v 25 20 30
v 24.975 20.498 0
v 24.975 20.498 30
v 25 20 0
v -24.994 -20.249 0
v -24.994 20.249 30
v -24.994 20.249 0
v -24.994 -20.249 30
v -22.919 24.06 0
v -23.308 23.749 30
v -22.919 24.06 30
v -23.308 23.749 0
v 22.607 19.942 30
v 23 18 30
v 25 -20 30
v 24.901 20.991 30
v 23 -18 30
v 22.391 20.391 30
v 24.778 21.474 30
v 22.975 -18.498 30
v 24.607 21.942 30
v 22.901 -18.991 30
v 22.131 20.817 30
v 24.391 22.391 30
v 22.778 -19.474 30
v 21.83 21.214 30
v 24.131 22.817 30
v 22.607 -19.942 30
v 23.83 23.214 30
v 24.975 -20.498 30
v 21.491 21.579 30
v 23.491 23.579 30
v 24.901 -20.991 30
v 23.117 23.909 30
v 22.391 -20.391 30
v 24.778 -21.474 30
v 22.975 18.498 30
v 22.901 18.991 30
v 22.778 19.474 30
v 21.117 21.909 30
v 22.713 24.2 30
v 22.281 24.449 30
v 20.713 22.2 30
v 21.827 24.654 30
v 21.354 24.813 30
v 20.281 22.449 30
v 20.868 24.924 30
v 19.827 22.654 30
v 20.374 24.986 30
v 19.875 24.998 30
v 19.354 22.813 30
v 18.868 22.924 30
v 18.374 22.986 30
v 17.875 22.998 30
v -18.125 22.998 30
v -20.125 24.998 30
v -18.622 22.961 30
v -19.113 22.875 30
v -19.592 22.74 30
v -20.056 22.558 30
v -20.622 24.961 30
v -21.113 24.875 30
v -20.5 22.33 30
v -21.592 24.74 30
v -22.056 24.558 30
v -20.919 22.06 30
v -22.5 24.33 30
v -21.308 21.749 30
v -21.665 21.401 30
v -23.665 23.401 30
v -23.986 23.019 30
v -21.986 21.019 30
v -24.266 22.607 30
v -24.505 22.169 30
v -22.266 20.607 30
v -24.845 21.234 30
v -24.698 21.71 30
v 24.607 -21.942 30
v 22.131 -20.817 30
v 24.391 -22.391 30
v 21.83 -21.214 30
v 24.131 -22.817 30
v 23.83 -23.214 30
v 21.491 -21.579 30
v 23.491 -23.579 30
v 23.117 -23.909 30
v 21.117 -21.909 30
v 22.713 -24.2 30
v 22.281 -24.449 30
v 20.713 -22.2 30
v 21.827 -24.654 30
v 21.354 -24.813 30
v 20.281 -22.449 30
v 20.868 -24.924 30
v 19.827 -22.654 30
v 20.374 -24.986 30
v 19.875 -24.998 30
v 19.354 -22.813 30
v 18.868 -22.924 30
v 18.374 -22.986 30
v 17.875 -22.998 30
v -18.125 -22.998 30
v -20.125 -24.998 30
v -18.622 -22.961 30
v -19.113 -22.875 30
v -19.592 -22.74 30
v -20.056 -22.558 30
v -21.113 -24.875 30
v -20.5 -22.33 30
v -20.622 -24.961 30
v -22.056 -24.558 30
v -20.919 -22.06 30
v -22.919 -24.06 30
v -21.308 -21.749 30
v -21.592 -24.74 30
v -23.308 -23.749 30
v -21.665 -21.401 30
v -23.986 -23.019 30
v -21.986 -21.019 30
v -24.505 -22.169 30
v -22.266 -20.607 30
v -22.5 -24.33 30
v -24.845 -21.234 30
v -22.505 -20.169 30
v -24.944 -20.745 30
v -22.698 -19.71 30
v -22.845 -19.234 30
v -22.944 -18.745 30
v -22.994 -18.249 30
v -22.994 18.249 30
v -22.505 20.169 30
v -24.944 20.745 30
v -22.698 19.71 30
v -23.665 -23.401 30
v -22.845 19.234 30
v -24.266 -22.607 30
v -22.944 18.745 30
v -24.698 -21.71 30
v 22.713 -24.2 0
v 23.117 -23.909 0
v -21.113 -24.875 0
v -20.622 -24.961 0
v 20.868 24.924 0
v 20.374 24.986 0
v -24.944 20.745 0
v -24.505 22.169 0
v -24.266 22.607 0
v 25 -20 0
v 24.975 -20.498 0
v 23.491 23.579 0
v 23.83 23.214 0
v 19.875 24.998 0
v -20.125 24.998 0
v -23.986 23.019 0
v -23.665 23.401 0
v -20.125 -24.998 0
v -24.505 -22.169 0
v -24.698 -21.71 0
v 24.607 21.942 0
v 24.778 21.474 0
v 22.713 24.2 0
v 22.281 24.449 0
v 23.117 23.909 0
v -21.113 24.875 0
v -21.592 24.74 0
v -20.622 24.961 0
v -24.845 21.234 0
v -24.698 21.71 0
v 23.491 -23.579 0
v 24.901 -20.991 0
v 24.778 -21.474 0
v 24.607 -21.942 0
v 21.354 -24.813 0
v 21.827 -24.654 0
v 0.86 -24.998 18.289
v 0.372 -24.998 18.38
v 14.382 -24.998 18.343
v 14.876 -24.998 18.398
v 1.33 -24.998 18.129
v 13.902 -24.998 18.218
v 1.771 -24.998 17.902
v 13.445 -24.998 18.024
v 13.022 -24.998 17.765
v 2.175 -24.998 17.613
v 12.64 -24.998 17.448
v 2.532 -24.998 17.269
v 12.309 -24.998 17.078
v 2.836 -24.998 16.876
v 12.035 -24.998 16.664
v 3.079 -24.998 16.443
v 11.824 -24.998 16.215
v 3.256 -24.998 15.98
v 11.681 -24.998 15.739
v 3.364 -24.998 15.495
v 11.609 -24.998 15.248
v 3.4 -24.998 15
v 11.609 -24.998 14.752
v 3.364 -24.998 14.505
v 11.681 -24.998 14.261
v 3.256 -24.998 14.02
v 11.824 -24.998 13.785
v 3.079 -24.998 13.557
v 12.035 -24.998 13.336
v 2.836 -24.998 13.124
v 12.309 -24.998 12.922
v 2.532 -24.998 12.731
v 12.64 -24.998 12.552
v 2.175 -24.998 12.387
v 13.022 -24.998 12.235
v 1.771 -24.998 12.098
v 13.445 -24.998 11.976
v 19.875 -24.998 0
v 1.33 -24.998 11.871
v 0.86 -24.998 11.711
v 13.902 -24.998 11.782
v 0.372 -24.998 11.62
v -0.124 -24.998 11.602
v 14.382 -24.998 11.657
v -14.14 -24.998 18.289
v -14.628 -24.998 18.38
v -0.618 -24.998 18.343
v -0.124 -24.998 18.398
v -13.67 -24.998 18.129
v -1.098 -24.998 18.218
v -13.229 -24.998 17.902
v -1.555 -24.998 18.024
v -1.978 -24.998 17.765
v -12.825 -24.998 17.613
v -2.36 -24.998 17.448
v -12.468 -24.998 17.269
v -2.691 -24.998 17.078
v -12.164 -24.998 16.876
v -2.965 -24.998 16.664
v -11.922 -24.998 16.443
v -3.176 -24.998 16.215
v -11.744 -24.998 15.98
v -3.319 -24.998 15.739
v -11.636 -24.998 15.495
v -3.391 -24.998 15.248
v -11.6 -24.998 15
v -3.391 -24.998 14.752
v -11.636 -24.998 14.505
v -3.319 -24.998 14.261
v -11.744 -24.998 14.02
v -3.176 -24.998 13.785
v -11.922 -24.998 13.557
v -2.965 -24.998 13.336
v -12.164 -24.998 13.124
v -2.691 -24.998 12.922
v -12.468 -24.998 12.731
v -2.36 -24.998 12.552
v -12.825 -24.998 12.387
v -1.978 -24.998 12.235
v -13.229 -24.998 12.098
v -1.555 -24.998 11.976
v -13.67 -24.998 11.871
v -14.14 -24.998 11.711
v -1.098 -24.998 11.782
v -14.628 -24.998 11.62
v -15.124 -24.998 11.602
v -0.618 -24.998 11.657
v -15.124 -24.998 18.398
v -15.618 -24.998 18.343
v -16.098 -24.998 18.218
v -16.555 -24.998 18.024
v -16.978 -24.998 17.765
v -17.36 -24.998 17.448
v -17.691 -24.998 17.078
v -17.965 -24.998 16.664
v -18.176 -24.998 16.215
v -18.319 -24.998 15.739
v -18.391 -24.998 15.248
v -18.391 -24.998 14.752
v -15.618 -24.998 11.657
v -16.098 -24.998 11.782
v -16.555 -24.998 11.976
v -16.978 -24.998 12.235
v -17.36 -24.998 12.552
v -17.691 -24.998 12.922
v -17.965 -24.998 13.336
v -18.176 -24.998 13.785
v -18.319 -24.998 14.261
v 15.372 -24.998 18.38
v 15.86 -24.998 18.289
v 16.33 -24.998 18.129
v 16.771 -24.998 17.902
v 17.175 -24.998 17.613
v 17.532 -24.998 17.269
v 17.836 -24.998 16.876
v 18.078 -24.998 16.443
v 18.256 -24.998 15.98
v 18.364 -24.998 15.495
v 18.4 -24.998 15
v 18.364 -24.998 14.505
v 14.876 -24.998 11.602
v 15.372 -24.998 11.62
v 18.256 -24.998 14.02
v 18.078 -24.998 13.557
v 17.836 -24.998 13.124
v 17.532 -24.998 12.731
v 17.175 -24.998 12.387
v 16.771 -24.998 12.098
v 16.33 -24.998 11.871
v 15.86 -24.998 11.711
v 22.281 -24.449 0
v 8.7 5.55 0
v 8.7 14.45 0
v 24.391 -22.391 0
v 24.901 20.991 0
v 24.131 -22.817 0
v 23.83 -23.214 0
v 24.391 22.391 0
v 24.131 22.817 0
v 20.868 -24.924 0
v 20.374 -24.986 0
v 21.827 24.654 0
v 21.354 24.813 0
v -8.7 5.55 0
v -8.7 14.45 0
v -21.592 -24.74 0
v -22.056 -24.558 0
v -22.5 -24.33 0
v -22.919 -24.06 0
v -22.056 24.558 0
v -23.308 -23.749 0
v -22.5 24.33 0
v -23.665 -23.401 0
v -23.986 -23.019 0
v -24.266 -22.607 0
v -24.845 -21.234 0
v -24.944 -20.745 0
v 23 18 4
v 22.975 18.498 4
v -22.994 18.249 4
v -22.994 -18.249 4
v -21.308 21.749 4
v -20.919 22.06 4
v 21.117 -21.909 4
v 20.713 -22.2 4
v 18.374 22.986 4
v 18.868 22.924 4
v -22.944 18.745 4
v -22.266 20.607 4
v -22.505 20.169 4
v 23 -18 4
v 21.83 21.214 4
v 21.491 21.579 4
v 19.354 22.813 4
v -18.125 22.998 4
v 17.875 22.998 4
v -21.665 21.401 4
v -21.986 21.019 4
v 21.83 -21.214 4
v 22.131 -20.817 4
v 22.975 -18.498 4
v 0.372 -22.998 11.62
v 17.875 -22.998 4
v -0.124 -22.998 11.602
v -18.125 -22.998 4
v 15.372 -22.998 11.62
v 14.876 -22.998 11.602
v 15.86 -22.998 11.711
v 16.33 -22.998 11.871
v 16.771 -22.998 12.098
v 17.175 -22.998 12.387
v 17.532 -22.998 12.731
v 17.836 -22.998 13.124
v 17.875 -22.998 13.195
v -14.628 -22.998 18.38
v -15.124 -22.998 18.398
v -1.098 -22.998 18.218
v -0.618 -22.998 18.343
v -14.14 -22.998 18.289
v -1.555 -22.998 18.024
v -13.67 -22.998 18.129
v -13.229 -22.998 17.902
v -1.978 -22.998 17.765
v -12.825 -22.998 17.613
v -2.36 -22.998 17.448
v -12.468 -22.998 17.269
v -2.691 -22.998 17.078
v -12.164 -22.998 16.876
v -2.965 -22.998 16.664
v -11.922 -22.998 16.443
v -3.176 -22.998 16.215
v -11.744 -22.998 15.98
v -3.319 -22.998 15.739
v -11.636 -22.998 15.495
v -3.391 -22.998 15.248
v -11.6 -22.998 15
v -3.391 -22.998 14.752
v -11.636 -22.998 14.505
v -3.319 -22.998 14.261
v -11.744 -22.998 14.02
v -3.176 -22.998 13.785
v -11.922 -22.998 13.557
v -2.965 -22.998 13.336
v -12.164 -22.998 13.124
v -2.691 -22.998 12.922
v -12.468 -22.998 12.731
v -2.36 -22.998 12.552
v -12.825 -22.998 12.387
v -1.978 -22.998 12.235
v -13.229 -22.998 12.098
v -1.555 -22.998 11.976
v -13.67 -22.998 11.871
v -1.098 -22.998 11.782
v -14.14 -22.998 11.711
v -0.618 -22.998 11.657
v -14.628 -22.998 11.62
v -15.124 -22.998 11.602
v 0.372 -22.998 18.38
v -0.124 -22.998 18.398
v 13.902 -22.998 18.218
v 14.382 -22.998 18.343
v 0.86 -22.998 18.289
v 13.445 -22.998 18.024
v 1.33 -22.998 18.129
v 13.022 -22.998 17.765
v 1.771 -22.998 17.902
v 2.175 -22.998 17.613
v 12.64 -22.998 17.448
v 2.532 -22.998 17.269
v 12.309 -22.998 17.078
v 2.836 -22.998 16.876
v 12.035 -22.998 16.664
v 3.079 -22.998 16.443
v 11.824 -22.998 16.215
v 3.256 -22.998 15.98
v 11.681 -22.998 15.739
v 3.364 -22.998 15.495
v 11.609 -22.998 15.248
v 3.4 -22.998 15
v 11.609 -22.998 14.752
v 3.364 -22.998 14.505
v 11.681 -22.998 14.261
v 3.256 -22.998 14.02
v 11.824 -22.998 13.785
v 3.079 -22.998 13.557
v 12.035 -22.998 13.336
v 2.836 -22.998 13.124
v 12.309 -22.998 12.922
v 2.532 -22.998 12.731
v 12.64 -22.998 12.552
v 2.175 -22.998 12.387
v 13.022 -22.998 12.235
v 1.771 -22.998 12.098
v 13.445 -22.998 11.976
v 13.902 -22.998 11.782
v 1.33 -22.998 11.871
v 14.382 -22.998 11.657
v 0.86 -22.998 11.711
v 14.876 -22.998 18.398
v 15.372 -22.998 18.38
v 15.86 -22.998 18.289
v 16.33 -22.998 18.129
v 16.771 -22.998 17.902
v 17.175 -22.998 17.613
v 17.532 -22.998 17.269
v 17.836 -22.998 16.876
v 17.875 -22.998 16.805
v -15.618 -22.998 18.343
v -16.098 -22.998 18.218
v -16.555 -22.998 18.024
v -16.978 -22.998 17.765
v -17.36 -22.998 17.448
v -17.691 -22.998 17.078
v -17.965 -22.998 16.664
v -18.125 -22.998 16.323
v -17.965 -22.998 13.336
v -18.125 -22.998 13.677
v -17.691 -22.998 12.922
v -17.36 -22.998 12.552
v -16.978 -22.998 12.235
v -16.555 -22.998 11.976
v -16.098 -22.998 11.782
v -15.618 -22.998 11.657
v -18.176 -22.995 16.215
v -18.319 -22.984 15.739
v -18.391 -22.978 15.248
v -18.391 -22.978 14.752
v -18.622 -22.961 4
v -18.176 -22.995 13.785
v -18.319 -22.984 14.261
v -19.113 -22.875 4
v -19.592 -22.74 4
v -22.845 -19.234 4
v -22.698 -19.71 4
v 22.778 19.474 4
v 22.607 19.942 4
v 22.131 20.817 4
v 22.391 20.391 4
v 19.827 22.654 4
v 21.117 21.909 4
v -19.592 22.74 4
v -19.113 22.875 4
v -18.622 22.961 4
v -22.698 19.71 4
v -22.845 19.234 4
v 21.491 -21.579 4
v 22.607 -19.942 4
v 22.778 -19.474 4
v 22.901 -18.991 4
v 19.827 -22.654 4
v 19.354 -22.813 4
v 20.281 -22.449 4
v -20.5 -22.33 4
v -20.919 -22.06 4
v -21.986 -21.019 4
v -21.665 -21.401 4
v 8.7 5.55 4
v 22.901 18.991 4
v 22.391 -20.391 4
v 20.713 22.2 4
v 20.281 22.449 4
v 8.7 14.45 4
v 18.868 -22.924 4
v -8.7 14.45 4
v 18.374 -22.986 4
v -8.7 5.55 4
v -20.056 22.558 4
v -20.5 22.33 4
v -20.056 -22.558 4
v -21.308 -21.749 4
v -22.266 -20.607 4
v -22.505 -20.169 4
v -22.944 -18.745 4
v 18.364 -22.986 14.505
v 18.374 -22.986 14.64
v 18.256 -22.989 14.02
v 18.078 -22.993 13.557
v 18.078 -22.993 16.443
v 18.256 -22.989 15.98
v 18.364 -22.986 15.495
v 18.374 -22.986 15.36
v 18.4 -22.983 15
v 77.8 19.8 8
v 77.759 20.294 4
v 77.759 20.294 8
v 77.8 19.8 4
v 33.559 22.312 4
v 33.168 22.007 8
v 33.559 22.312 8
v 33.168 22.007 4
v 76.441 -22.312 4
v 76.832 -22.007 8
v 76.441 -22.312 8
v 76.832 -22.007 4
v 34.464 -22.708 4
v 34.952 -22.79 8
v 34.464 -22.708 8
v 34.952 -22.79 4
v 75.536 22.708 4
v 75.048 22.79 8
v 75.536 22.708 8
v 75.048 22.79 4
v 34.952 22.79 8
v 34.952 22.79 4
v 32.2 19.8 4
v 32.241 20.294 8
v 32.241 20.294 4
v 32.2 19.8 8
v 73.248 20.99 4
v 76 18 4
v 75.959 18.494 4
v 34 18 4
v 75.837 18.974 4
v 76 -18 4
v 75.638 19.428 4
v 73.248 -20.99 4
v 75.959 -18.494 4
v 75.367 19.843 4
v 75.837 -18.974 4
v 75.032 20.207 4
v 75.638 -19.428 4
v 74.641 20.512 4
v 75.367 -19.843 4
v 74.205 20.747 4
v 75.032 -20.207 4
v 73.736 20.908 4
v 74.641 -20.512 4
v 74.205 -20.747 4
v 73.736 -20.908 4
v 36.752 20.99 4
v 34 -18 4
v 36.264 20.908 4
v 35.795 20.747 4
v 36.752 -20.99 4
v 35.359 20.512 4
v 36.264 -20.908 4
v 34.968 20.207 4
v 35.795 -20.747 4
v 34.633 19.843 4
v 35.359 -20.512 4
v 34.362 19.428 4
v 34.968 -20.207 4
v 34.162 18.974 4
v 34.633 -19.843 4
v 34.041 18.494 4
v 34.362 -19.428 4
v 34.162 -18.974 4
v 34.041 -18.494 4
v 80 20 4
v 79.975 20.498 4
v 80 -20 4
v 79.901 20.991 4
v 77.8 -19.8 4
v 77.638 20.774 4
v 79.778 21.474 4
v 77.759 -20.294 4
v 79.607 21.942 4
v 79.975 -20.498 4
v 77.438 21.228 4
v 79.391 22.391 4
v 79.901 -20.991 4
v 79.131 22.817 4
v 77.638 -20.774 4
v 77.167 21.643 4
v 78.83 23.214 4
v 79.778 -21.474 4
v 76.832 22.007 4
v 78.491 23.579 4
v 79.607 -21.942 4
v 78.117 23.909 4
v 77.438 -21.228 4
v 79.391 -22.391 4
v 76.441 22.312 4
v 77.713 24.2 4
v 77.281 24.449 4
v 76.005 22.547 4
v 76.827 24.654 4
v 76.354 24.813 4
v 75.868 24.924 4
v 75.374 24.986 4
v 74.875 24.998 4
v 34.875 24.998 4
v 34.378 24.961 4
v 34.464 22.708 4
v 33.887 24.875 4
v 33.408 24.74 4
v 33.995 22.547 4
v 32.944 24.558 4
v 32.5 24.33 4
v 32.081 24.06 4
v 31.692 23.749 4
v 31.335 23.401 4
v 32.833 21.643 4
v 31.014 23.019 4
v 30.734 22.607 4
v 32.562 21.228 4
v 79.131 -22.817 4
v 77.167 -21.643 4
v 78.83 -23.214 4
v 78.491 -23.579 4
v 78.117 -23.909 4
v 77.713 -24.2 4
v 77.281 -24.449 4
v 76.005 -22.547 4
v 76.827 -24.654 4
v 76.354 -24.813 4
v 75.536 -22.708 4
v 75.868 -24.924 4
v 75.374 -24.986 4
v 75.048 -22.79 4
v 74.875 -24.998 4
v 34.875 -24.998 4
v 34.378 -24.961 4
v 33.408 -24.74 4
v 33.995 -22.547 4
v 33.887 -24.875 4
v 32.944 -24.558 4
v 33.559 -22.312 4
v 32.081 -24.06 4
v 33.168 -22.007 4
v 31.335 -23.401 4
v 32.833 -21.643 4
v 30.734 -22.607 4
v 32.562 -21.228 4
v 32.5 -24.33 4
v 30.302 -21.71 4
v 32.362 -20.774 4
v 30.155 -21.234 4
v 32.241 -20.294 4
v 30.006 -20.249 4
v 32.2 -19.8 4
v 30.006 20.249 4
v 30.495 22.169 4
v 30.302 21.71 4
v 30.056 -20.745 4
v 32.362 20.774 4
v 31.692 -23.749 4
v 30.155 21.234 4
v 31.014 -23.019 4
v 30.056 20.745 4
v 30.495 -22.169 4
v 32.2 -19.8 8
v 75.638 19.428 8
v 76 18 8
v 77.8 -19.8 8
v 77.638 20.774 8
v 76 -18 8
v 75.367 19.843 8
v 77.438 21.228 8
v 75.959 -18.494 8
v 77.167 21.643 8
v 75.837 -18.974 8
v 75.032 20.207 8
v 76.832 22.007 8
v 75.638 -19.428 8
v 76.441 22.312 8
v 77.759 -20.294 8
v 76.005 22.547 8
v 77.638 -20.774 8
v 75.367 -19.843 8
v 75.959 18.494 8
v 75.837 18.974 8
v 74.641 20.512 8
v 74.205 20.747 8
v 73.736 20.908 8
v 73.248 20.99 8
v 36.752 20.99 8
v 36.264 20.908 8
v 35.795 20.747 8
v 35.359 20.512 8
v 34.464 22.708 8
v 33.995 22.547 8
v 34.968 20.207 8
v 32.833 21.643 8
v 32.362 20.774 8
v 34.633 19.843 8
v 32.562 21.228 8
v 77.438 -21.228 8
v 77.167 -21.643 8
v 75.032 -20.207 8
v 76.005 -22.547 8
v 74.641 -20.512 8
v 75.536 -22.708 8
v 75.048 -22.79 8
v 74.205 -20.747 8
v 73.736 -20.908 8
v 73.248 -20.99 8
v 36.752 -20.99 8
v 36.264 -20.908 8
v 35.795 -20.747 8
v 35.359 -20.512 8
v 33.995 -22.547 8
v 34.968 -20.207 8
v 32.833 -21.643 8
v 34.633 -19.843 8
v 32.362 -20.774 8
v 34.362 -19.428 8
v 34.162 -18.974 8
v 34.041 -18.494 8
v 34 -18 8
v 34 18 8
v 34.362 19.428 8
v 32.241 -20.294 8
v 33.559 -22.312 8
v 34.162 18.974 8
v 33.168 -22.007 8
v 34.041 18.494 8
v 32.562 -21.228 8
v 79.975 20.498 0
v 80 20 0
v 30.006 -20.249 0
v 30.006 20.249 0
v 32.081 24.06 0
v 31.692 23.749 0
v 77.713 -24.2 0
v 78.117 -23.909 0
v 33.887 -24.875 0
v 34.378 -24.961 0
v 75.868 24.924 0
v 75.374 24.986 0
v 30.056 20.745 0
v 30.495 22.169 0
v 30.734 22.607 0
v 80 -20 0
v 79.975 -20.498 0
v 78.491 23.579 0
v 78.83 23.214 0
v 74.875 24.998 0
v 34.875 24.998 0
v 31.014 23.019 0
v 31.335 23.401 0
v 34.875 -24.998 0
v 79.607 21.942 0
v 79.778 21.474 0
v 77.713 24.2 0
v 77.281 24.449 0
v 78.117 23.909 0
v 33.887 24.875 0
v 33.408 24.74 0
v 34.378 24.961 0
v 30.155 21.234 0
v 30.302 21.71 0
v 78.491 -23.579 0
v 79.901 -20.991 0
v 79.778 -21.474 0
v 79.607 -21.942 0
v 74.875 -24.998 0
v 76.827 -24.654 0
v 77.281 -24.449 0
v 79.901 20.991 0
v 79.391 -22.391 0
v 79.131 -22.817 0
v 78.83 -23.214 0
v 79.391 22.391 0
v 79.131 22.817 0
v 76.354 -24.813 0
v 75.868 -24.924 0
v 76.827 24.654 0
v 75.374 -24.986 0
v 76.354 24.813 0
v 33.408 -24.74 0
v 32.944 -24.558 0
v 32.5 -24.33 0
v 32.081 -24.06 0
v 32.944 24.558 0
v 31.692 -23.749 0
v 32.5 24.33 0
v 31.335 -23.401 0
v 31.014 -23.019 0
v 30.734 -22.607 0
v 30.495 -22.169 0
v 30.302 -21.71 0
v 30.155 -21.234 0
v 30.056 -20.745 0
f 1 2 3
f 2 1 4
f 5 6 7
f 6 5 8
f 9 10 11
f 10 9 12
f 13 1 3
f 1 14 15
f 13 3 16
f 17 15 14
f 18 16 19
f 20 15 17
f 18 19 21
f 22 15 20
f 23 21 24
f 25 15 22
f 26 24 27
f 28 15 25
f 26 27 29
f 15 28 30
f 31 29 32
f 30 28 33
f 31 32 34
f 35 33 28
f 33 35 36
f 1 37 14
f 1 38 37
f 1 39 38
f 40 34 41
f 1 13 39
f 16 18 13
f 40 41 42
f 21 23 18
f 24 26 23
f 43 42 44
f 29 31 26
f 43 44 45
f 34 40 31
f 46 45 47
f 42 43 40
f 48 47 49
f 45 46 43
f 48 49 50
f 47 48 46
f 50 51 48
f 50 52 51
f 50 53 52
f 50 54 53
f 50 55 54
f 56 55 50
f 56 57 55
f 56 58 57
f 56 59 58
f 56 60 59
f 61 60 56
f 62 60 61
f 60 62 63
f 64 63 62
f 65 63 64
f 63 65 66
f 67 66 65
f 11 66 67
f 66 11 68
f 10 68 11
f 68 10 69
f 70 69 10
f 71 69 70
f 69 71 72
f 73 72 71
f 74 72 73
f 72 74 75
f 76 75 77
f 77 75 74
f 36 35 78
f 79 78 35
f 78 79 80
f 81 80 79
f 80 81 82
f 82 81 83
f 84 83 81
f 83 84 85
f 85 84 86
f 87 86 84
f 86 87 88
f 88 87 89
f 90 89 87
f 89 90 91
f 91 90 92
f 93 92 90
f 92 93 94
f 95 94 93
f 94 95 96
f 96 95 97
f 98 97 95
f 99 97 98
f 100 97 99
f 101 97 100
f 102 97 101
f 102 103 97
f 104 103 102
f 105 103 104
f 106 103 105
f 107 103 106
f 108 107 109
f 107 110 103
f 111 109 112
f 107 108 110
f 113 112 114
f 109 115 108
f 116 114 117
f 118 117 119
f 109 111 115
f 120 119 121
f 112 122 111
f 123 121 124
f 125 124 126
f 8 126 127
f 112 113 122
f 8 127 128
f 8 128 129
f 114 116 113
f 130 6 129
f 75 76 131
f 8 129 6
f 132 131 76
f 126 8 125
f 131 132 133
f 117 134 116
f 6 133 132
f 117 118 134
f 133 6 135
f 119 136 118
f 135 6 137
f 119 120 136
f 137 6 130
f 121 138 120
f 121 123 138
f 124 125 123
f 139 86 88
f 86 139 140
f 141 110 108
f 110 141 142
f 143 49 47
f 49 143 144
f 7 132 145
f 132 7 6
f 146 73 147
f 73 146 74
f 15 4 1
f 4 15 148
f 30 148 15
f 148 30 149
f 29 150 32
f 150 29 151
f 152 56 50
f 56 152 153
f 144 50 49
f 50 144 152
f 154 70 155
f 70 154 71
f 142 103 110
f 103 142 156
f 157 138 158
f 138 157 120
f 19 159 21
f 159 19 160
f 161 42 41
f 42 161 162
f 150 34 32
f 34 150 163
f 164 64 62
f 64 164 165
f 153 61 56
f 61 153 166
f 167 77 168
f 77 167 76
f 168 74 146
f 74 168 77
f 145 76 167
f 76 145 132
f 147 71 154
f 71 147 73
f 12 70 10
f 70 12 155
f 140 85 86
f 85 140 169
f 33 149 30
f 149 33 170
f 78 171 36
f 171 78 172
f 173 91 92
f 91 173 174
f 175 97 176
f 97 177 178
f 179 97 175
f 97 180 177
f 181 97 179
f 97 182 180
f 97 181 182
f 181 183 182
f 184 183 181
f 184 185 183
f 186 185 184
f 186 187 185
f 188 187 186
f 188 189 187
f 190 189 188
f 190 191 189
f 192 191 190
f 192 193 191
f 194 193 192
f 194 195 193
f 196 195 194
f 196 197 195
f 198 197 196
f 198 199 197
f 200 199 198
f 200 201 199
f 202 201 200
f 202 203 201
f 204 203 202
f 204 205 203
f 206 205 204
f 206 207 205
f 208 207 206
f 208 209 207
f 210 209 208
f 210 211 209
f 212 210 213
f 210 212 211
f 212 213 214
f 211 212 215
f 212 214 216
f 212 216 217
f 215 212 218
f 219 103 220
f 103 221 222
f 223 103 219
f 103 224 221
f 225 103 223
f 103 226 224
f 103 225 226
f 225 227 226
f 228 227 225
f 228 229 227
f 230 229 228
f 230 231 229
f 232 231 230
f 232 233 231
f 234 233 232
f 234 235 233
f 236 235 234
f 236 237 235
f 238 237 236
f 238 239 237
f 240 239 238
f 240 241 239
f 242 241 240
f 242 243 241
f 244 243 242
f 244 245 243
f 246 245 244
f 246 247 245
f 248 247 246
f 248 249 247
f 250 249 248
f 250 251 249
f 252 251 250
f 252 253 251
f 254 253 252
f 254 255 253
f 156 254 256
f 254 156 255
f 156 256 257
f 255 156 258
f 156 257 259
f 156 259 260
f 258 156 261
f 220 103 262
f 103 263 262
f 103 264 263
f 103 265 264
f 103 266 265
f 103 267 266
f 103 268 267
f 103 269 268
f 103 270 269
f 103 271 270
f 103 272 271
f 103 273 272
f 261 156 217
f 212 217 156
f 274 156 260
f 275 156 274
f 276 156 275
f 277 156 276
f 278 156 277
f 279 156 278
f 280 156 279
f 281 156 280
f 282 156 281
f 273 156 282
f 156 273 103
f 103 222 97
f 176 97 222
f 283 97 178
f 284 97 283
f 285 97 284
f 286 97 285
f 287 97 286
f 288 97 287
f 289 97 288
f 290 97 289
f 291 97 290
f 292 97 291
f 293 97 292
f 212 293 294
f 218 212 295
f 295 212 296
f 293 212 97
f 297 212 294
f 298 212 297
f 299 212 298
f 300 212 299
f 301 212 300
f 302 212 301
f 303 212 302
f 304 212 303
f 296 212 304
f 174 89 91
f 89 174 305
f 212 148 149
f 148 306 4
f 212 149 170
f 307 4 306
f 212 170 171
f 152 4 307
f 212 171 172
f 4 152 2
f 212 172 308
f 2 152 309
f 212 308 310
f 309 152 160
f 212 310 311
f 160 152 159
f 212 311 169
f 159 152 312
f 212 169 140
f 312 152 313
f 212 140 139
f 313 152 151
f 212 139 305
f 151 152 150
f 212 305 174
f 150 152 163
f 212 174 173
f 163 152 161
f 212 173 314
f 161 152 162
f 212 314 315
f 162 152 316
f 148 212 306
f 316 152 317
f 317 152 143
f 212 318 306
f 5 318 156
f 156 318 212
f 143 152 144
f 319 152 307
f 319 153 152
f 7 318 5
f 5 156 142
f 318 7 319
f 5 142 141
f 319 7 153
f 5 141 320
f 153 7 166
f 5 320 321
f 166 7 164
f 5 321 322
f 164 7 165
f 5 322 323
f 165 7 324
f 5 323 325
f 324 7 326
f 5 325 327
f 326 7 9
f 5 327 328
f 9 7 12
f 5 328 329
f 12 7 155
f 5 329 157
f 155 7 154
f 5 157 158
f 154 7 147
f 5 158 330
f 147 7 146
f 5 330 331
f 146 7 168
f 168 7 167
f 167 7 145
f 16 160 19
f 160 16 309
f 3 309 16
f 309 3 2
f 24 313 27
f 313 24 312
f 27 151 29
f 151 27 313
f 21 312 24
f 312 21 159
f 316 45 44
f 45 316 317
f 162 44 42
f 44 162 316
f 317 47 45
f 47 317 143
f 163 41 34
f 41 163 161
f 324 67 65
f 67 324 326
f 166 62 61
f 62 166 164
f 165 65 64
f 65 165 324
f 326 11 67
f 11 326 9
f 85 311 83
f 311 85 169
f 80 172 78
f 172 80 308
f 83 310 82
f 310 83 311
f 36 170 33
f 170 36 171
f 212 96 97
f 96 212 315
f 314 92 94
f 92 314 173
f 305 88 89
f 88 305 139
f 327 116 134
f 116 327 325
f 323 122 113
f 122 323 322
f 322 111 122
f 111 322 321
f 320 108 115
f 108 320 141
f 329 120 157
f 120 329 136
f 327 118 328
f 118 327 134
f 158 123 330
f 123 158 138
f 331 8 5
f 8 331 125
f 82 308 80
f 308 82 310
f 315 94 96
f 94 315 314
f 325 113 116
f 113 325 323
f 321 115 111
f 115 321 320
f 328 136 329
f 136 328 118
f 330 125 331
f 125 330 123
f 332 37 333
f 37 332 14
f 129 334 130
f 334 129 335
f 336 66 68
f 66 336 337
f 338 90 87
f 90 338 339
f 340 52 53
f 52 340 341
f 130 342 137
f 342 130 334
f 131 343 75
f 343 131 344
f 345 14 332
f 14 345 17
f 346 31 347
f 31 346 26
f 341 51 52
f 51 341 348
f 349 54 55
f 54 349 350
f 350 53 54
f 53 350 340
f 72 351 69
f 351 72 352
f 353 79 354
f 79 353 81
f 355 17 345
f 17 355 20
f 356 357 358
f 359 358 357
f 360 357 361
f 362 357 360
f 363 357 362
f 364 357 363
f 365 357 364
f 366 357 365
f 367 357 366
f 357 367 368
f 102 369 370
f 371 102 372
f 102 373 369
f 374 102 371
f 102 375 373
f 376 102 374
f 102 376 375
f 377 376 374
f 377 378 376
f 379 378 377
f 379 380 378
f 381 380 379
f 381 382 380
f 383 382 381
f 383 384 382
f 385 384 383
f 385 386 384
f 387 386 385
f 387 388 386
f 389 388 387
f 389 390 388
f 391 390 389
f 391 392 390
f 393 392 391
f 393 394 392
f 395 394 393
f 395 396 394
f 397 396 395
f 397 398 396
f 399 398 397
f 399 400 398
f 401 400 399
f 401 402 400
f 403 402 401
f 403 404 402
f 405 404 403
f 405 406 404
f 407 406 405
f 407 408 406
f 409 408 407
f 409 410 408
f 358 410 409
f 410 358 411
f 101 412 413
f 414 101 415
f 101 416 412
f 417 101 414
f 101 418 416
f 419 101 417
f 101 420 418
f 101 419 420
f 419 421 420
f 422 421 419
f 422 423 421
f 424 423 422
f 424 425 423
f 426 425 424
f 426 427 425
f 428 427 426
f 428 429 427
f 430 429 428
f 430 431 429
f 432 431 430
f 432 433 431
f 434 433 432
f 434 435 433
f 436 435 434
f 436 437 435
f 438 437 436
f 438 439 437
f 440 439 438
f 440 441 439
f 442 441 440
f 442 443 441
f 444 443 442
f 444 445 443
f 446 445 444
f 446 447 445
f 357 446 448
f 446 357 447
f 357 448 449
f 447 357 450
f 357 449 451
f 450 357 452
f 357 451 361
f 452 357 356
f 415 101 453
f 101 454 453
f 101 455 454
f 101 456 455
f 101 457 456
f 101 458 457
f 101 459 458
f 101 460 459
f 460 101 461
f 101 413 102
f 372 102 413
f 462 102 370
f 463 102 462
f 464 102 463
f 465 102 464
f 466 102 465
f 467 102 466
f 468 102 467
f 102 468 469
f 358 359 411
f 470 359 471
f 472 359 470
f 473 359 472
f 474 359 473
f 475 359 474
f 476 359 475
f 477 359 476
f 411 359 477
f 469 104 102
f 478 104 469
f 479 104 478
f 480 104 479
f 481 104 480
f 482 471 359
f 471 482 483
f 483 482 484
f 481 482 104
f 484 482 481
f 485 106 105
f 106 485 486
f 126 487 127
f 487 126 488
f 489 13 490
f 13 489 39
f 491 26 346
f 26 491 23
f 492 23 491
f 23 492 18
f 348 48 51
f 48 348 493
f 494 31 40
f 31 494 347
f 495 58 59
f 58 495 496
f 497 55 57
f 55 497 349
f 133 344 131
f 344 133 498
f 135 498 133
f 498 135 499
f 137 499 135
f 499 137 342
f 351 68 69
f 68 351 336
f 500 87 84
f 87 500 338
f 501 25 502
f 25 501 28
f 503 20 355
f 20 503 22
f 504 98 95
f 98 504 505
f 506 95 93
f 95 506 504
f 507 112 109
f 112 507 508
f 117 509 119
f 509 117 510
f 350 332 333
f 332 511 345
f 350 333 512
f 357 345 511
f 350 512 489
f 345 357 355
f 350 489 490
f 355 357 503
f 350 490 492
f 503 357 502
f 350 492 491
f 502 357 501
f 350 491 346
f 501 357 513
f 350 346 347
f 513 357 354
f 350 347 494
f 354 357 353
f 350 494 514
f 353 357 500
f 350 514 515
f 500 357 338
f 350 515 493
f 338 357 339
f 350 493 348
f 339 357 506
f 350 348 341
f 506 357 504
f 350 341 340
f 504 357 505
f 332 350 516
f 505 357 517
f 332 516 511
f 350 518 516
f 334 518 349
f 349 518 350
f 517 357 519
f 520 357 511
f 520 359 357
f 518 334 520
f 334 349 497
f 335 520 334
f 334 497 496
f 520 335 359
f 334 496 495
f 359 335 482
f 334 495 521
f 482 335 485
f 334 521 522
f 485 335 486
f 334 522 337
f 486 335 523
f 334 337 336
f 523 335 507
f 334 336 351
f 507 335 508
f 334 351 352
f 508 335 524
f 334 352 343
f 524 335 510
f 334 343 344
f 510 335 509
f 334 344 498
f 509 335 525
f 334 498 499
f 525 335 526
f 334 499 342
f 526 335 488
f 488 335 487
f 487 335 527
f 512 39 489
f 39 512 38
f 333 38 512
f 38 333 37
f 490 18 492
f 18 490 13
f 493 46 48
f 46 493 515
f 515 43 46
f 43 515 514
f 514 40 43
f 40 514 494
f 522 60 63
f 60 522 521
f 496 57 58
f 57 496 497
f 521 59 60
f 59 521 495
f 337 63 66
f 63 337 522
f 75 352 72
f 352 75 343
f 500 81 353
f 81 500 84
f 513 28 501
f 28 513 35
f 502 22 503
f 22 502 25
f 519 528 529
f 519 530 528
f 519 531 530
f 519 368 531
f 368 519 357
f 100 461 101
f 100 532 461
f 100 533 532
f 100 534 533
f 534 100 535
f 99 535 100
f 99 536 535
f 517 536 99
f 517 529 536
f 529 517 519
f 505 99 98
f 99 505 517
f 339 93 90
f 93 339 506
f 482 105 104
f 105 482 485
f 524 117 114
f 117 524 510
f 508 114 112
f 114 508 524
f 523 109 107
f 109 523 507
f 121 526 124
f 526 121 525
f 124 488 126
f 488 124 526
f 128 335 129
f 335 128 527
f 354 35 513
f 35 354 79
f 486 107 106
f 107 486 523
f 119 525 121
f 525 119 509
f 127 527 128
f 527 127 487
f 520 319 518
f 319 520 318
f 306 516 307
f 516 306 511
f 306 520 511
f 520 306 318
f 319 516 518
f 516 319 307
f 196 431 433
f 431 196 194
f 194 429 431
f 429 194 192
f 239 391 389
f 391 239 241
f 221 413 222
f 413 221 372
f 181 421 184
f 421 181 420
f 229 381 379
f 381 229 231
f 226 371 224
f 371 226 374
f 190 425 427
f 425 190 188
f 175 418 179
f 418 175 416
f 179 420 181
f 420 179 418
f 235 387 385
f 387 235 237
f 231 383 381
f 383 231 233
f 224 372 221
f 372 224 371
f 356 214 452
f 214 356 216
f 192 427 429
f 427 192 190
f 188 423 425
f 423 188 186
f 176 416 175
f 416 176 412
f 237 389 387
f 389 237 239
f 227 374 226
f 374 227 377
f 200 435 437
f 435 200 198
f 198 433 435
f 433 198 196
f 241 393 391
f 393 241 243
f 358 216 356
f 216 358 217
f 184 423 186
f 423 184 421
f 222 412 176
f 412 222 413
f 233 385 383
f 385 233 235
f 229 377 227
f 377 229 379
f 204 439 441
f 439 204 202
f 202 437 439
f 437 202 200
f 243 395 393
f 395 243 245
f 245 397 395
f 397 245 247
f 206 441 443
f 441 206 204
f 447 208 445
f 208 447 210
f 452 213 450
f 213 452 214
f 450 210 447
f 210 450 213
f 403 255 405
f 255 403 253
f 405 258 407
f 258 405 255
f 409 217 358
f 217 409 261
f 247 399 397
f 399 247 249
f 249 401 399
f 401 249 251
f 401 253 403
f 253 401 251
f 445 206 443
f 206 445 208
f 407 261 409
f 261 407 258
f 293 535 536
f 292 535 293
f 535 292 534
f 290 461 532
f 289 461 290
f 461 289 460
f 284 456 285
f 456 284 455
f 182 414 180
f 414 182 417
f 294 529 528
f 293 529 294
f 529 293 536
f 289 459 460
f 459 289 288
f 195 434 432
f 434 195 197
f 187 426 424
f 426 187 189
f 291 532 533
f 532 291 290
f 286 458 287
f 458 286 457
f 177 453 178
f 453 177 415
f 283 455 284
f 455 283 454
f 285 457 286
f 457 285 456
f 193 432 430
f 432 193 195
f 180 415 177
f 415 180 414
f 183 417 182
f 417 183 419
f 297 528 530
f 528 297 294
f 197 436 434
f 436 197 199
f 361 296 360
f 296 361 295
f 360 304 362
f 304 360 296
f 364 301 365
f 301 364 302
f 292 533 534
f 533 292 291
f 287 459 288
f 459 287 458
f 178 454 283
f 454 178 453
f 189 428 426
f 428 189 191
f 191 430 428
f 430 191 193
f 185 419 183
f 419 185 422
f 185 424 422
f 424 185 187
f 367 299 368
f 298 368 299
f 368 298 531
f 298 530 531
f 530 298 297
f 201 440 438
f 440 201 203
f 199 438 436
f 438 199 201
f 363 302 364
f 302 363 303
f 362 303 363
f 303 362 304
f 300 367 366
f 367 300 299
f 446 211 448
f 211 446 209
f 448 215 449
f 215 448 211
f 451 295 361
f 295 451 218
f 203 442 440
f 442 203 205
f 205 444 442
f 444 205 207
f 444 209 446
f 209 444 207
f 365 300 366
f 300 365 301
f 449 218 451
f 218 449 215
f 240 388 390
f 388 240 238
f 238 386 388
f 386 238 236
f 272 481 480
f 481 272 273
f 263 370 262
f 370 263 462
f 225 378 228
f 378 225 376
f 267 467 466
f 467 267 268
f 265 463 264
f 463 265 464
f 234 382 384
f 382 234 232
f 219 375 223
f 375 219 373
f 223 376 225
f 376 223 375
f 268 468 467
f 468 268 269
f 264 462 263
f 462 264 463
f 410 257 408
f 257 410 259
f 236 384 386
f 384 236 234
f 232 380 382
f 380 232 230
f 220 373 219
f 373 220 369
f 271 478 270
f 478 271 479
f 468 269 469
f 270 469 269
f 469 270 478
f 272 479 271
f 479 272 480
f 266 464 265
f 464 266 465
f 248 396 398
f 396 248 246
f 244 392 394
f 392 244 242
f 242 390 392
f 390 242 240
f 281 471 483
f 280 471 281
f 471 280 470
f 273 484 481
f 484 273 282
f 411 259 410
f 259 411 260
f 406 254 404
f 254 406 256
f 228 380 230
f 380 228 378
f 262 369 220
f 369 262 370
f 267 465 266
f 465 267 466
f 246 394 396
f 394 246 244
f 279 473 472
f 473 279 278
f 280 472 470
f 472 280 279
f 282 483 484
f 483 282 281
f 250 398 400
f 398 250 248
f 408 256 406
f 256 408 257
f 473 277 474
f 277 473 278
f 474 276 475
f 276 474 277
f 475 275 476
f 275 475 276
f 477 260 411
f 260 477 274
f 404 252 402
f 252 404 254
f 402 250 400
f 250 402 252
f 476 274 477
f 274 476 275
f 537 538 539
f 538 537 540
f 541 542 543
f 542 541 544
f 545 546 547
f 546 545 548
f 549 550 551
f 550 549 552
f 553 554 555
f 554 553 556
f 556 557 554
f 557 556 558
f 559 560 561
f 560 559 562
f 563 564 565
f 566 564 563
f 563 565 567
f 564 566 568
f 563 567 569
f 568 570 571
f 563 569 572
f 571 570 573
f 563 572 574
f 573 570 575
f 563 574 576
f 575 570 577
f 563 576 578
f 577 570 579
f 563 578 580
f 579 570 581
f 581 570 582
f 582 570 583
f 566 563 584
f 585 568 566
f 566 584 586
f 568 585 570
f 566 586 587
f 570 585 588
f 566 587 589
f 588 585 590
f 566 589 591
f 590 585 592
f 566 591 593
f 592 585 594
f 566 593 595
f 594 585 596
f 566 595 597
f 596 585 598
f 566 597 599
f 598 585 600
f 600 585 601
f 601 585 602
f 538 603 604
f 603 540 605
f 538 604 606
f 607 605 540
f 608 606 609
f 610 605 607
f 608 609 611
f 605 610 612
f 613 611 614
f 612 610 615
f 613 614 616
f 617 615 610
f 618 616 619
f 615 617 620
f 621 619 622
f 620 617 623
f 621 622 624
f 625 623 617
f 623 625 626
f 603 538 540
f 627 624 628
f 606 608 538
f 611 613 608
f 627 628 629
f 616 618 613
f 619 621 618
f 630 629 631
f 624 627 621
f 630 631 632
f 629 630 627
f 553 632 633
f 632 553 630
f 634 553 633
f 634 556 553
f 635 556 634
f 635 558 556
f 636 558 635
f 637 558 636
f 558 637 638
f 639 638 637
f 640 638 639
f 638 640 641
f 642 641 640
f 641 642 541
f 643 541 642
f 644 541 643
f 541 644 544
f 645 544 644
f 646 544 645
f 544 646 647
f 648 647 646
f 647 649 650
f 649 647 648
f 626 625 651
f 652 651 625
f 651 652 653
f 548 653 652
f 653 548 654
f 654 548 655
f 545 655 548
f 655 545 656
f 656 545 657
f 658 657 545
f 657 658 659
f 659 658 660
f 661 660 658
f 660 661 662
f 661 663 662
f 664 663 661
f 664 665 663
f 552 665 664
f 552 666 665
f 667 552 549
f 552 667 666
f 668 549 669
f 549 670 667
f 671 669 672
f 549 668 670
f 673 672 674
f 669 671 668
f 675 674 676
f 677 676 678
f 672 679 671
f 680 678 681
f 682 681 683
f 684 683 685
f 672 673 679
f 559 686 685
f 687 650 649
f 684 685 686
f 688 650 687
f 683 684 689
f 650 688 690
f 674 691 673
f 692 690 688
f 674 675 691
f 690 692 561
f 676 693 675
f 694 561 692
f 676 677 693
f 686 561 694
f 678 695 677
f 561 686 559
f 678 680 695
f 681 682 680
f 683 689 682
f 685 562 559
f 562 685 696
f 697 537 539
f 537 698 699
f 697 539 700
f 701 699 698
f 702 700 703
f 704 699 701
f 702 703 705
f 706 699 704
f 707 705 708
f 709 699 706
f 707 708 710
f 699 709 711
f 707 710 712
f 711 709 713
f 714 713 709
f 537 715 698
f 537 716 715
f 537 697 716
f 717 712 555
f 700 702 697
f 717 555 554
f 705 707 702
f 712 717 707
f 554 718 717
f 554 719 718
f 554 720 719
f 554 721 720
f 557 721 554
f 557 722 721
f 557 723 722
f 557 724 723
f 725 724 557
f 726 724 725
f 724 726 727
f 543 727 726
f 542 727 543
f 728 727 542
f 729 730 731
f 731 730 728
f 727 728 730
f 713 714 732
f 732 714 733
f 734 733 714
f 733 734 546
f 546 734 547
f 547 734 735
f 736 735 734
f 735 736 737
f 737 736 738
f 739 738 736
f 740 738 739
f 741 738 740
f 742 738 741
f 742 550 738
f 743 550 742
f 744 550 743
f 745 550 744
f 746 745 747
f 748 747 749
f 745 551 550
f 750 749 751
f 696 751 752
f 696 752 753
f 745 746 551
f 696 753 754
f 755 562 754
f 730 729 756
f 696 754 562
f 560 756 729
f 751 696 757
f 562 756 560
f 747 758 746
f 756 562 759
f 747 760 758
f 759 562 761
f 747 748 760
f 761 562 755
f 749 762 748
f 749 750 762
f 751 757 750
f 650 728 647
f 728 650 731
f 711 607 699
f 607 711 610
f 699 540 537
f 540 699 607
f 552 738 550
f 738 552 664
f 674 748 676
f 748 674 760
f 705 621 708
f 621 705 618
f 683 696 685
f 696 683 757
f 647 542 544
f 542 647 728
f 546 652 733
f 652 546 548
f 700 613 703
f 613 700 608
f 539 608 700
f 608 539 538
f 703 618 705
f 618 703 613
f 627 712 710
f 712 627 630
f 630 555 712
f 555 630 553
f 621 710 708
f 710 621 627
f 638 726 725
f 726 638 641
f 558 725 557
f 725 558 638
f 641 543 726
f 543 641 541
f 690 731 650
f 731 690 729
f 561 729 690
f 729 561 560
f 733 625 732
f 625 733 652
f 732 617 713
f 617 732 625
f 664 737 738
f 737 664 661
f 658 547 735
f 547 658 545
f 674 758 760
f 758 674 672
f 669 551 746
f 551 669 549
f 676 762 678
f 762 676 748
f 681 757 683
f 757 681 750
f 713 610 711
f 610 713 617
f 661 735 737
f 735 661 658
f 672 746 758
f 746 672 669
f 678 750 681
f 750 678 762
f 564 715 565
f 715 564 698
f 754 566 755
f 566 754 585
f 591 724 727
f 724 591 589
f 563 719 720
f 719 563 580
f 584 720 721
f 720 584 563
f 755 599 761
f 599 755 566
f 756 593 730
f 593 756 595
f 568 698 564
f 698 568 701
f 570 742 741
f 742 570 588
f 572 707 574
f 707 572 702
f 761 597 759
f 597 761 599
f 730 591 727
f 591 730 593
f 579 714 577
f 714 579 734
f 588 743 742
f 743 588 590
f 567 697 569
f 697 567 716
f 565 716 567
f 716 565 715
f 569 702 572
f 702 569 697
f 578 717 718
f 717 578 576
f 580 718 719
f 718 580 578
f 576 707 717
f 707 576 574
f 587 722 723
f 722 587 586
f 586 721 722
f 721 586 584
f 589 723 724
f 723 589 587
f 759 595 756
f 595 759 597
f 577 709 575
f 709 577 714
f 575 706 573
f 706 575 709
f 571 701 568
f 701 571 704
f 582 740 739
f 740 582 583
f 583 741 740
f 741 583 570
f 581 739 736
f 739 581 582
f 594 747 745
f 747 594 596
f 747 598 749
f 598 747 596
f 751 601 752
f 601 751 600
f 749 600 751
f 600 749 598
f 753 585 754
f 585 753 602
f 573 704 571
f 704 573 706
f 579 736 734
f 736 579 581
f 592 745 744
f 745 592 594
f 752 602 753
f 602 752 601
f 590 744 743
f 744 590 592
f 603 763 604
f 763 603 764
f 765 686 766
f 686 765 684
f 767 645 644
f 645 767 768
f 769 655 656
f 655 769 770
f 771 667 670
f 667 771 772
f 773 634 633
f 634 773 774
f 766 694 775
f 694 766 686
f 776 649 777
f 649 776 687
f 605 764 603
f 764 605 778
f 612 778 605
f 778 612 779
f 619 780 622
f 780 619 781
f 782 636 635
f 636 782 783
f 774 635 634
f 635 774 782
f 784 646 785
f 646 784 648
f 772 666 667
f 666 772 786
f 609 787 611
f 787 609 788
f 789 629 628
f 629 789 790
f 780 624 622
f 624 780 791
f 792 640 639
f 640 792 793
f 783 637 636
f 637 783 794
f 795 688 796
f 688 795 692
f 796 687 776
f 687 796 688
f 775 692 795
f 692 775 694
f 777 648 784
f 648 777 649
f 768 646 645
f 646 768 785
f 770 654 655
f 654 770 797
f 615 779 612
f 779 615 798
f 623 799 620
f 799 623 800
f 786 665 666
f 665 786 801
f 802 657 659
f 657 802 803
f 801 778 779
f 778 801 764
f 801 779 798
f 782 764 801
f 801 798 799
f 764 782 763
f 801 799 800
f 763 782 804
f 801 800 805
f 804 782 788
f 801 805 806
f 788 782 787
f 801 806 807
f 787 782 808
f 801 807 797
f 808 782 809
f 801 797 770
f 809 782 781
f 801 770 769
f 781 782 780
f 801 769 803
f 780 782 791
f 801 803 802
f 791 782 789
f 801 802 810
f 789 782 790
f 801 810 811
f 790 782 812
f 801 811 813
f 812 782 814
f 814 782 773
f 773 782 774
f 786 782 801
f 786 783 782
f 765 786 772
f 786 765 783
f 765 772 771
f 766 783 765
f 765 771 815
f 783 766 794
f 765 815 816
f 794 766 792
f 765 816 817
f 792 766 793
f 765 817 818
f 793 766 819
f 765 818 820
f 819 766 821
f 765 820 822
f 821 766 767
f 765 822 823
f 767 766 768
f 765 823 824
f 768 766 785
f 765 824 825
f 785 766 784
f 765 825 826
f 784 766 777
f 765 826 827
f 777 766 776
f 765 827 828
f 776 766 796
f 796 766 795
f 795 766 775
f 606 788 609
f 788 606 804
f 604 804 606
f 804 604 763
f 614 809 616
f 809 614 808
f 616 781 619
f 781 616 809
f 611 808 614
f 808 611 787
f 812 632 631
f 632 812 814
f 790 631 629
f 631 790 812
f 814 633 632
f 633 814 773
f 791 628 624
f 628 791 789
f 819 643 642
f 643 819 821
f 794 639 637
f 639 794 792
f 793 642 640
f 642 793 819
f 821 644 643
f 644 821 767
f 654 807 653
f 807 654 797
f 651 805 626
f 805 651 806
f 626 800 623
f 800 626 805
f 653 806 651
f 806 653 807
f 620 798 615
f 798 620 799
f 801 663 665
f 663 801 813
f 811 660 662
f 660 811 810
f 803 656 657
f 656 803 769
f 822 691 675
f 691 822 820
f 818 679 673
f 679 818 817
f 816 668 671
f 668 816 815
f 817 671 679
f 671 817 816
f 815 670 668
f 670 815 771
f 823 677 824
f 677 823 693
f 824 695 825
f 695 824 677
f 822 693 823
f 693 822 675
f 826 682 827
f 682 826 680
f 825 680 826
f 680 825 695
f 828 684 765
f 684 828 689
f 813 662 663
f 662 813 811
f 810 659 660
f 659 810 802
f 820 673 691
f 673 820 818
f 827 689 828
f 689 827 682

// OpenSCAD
$fa=0.5; // default minimum facet angle is now 0.5
$fs=0.5; // default minimum facet size is now 0.5 mm

width = 50;
height = 30;
depth = 50;
corner_radius = 5;
wall_thick = 4;
lidheight = 4;
wiggleroom = 0.4;
button_width = 17;
button_depth = 8.5;
r_audio = 3;
d_audio = 15;
button_offset = 10;
audio_offset = 0;


module round_thingy(width, height, depth, corner_radius)
{
    hull(){
        for(x=[-(width / 2 - corner_radius), width / 2 - corner_radius])
        {
            for(y=[-(depth / 2 - corner_radius), depth / 2 - corner_radius])
            {
                translate([x,y,0]) cylinder(r=corner_radius, h = height, center=true);
            }
        } 
    }
}

//Body
module body(width,height,depth,corner_radius)
{
    difference()
    {
        round_thingy(width, height, depth, corner_radius);
        translate([0,0,wall_thick]) round_thingy(width - wall_thick, height , depth- wall_thick, corner_radius);
    }
}

//body and holes
translate([0,0,height / 2]) difference(){
    body(width,height,depth,corner_radius);

    translate([0,button_offset,0])cube([button_width+wiggleroom,button_depth+wiggleroom,2 * height],center=true) ;
    rotate([90,0,0])translate([0,0,audio_offset])cylinder(r=r_audio+wiggleroom,h=width);
    rotate([90,0,0])translate([d_audio,0,audio_offset])cylinder(r=r_audio+wiggleroom,h=width);
    rotate([90,0,0])translate([-d_audio,0,audio_offset])cylinder(r=r_audio+wiggleroom,h=width);
}

//Lid
translate([width + 5,0,lidheight / 2])
{
    //Top of lid
    round_thingy(width=width, height=lidheight, depth = depth, corner_radius=corner_radius);

    //rim of lid
    translate([0,0,lidheight]) 
    difference()
    {
        round_thingy(width = width - wall_thick - wiggleroom, 
                     height = lidheight, 
                     depth = depth - wall_thick - wiggleroom, 
                     corner_radius = corner_radius - wall_thick / 2);
        translate([0,0,wall_thick]) round_thingy(width = width - 2 * wall_thick, 
                                                 height = height ,
                                                 depth = depth - 2 * wall_thick, 
                                                 corner_radius = corner_radius - wall_thick / 2);
    }
}
